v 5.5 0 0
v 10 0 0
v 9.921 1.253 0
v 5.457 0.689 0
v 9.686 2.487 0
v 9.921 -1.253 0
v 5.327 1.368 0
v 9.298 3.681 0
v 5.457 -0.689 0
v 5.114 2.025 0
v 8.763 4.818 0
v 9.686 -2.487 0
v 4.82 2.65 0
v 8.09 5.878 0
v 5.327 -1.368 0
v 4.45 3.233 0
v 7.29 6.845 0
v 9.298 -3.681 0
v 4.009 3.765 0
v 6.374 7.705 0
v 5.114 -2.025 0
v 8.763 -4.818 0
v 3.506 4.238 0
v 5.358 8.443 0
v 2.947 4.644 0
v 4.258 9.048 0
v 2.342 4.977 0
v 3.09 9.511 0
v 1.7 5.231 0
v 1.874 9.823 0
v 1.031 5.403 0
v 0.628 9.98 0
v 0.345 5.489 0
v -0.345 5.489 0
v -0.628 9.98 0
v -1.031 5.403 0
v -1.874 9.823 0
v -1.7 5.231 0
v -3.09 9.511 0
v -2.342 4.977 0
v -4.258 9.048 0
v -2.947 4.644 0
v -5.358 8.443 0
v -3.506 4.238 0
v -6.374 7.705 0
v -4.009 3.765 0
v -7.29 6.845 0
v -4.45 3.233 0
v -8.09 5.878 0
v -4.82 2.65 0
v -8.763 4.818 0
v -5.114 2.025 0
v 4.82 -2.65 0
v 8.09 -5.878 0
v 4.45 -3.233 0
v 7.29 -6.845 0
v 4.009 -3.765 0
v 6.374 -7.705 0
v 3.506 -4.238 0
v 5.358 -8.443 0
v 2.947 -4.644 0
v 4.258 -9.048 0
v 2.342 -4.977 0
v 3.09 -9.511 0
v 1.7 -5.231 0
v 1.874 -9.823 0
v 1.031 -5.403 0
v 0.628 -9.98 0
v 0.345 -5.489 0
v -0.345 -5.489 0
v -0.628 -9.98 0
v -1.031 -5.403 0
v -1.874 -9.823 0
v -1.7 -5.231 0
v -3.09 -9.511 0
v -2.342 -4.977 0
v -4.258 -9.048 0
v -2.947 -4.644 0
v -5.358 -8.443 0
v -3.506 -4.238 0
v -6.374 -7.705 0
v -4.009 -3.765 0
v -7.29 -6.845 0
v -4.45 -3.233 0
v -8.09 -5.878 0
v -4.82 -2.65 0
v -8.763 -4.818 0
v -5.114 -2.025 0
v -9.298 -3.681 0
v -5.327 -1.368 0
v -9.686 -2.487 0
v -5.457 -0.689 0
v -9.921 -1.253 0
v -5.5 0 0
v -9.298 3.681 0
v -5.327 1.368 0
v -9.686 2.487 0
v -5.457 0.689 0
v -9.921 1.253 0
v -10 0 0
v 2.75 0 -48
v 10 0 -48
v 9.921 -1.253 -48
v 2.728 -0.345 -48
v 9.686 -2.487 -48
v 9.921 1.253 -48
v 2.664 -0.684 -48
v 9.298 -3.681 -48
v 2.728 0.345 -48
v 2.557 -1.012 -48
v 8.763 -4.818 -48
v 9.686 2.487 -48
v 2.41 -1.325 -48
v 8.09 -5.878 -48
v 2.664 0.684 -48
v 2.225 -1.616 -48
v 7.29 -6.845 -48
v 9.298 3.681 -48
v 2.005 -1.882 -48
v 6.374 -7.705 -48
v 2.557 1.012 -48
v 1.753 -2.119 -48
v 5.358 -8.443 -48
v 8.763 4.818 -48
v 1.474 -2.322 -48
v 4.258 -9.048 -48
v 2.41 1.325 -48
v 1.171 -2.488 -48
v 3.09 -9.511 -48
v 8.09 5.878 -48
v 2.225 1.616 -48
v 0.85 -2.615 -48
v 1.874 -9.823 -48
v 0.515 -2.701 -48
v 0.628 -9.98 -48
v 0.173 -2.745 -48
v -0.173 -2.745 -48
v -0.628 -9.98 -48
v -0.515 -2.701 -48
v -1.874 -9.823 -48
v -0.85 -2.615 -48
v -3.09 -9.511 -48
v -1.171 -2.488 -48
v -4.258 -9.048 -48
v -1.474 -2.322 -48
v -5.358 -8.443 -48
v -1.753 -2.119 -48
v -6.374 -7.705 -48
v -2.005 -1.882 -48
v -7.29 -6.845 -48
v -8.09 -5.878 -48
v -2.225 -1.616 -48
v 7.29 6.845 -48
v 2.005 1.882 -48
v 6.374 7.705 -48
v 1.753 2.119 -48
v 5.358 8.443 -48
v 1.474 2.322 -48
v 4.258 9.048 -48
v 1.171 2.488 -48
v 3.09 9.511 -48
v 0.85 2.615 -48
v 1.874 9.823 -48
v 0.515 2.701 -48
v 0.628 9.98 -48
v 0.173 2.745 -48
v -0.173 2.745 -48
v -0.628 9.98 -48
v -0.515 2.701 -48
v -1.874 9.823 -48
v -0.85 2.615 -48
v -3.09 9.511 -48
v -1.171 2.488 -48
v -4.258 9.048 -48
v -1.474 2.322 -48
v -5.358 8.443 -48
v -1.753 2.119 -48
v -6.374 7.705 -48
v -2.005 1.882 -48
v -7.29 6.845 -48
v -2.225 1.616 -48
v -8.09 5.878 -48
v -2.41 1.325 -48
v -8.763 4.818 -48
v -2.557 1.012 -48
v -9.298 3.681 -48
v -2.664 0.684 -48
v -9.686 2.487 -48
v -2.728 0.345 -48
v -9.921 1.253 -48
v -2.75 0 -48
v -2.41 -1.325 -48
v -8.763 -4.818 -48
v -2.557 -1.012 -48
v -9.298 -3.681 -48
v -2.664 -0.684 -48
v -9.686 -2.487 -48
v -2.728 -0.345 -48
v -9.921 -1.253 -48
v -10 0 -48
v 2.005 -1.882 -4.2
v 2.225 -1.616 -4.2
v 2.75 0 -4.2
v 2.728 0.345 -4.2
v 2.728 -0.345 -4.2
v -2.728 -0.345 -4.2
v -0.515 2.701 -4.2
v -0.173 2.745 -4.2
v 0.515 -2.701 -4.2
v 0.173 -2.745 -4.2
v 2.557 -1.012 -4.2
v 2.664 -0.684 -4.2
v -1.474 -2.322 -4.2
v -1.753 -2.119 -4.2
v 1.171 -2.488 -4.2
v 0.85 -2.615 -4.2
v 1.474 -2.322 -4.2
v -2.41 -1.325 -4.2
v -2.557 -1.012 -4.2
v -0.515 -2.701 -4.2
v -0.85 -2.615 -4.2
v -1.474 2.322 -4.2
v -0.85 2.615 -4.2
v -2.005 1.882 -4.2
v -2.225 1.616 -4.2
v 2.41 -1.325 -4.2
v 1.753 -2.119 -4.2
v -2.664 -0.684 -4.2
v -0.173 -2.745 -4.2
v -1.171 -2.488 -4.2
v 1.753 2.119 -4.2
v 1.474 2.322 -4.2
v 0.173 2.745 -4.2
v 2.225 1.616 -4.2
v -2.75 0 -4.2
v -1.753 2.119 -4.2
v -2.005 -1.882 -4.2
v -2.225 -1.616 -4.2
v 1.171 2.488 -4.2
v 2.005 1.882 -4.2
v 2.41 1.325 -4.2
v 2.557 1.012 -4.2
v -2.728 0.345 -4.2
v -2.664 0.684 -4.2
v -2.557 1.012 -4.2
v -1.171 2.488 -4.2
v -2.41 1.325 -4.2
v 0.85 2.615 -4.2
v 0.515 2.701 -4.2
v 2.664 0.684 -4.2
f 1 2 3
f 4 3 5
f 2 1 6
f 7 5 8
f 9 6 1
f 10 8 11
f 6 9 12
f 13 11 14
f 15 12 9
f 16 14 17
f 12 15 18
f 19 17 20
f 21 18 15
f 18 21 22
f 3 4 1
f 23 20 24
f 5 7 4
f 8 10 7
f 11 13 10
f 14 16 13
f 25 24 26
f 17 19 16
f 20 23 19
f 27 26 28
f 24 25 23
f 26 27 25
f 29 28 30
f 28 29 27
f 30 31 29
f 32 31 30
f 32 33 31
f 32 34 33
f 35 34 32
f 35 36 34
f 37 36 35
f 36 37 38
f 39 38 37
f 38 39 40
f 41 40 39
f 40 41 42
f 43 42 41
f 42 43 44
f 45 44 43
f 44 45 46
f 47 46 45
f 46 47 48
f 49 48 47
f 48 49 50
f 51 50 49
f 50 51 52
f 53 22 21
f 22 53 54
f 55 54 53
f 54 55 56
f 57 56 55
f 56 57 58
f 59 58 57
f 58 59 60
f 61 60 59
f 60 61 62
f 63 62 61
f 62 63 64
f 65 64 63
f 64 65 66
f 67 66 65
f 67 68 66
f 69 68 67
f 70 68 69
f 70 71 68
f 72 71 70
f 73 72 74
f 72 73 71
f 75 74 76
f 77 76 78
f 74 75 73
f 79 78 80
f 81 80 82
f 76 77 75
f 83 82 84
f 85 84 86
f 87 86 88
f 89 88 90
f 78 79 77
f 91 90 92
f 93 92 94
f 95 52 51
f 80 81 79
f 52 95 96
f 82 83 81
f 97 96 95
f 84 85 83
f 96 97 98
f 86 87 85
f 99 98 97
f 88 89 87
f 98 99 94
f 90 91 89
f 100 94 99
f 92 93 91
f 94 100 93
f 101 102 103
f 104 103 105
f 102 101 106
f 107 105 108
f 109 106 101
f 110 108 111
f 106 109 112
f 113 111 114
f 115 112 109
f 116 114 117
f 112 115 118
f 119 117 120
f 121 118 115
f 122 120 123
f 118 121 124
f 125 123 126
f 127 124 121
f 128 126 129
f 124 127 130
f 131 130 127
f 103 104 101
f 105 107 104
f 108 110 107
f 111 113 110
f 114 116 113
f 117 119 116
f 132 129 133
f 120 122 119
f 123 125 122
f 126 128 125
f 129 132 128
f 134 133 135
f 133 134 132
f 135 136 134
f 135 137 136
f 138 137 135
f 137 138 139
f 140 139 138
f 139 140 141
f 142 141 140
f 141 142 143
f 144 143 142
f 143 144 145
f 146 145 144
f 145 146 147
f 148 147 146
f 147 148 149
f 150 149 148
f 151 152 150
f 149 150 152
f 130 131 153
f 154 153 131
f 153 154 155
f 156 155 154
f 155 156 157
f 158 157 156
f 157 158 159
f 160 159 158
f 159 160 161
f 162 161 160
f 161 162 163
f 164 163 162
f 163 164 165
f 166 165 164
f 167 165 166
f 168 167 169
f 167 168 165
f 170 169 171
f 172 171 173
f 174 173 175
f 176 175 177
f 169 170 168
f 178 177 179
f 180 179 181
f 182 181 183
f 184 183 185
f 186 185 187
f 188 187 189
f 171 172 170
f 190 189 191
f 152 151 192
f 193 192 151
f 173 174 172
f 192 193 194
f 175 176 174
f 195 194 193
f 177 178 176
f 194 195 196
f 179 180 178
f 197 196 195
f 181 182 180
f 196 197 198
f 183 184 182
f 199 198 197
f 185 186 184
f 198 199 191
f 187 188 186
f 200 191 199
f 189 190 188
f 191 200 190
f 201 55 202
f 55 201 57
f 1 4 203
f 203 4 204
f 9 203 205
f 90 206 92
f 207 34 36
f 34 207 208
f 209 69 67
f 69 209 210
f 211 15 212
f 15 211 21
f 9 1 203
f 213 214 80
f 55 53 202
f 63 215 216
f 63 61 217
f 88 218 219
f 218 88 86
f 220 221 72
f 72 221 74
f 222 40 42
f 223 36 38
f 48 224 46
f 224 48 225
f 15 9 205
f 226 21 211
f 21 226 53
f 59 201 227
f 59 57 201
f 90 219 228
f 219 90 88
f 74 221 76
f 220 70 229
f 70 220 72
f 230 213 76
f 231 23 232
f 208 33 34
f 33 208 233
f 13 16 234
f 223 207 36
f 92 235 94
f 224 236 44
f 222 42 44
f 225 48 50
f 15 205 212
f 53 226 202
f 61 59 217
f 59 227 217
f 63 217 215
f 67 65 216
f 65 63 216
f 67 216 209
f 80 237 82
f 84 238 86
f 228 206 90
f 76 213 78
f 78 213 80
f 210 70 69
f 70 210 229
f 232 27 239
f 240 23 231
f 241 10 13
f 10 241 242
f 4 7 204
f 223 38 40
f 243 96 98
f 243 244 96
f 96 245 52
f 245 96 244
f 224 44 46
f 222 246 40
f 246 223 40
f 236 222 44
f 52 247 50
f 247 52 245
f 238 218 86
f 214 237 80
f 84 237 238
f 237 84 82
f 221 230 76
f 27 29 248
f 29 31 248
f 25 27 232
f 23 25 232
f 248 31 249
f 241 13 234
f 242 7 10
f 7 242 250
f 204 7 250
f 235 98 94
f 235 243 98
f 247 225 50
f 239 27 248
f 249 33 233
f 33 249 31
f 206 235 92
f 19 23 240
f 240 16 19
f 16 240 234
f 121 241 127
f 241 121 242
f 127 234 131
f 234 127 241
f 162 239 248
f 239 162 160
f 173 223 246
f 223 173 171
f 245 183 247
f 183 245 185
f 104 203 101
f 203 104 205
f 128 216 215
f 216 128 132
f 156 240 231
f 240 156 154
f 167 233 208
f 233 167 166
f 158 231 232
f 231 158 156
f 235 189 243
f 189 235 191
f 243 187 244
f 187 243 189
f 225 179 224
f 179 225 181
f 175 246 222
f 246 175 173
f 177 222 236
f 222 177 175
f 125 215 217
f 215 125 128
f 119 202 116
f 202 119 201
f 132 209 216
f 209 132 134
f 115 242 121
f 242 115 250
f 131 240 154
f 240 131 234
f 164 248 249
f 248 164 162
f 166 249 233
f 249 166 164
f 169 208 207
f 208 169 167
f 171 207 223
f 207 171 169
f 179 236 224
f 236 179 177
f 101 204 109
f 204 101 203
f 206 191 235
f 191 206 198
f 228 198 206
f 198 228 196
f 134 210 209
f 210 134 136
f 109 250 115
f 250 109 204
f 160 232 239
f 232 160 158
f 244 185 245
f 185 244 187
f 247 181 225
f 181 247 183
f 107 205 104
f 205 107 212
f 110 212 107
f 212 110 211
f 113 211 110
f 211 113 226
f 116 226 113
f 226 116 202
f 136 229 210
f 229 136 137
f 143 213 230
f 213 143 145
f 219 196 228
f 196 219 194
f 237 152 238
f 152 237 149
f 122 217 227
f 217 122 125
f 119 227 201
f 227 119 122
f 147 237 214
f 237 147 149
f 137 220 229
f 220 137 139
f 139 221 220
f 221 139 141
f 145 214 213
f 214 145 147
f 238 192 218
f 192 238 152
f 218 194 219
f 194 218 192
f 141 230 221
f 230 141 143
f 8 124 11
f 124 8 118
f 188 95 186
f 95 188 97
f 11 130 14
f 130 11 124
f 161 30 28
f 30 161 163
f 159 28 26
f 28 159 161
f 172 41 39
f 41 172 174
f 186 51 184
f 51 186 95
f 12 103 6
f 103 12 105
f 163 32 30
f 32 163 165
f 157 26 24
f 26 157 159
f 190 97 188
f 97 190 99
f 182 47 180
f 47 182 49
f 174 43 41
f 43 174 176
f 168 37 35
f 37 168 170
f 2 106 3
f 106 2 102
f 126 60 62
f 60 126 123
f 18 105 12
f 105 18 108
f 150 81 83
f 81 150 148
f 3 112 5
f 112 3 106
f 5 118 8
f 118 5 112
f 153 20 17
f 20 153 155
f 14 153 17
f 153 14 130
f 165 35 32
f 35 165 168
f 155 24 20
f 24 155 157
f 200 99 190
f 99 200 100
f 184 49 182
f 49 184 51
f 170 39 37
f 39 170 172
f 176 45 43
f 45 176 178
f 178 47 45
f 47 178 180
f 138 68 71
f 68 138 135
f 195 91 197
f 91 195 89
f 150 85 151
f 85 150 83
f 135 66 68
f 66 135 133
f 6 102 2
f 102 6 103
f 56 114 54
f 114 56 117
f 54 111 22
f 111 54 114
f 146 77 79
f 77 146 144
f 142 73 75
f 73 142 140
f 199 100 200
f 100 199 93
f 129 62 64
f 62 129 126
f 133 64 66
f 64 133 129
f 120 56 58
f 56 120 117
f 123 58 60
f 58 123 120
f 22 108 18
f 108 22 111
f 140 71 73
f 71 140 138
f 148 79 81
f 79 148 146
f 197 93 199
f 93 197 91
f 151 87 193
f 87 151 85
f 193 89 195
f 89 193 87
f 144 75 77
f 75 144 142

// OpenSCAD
$fn = 50;


difference() {
	union() {
		translate(v = [0, 0, -48.0000000000]) {
			cylinder(h = 48, r = 10.0000000000);
		}
		cylinder(h = 0, r = 16.0000000000);
	}
	union() {
		translate(v = [0, 0, 0]) {
			rotate(a = [0, 0, 0]) {
				difference() {
					union() {
						#translate(v = [0, 0, -48.0000000000]) {
							cylinder(h = 48, r = 2.2500000000);
						}
						#translate(v = [0, 0, -4.2000000000]) {
							cylinder(h = 4.2000000000, r1 = 2.7500000000, r2 = 5.5000000000);
						}
						#translate(v = [0, 0, -48.0000000000]) {
							cylinder(h = 48, r = 2.7500000000);
						}
						#translate(v = [0, 0, -48.0000000000]) {
							cylinder(h = 48, r = 2.2500000000);
						}
					}
					union();
				}
			}
		}
	}
}
